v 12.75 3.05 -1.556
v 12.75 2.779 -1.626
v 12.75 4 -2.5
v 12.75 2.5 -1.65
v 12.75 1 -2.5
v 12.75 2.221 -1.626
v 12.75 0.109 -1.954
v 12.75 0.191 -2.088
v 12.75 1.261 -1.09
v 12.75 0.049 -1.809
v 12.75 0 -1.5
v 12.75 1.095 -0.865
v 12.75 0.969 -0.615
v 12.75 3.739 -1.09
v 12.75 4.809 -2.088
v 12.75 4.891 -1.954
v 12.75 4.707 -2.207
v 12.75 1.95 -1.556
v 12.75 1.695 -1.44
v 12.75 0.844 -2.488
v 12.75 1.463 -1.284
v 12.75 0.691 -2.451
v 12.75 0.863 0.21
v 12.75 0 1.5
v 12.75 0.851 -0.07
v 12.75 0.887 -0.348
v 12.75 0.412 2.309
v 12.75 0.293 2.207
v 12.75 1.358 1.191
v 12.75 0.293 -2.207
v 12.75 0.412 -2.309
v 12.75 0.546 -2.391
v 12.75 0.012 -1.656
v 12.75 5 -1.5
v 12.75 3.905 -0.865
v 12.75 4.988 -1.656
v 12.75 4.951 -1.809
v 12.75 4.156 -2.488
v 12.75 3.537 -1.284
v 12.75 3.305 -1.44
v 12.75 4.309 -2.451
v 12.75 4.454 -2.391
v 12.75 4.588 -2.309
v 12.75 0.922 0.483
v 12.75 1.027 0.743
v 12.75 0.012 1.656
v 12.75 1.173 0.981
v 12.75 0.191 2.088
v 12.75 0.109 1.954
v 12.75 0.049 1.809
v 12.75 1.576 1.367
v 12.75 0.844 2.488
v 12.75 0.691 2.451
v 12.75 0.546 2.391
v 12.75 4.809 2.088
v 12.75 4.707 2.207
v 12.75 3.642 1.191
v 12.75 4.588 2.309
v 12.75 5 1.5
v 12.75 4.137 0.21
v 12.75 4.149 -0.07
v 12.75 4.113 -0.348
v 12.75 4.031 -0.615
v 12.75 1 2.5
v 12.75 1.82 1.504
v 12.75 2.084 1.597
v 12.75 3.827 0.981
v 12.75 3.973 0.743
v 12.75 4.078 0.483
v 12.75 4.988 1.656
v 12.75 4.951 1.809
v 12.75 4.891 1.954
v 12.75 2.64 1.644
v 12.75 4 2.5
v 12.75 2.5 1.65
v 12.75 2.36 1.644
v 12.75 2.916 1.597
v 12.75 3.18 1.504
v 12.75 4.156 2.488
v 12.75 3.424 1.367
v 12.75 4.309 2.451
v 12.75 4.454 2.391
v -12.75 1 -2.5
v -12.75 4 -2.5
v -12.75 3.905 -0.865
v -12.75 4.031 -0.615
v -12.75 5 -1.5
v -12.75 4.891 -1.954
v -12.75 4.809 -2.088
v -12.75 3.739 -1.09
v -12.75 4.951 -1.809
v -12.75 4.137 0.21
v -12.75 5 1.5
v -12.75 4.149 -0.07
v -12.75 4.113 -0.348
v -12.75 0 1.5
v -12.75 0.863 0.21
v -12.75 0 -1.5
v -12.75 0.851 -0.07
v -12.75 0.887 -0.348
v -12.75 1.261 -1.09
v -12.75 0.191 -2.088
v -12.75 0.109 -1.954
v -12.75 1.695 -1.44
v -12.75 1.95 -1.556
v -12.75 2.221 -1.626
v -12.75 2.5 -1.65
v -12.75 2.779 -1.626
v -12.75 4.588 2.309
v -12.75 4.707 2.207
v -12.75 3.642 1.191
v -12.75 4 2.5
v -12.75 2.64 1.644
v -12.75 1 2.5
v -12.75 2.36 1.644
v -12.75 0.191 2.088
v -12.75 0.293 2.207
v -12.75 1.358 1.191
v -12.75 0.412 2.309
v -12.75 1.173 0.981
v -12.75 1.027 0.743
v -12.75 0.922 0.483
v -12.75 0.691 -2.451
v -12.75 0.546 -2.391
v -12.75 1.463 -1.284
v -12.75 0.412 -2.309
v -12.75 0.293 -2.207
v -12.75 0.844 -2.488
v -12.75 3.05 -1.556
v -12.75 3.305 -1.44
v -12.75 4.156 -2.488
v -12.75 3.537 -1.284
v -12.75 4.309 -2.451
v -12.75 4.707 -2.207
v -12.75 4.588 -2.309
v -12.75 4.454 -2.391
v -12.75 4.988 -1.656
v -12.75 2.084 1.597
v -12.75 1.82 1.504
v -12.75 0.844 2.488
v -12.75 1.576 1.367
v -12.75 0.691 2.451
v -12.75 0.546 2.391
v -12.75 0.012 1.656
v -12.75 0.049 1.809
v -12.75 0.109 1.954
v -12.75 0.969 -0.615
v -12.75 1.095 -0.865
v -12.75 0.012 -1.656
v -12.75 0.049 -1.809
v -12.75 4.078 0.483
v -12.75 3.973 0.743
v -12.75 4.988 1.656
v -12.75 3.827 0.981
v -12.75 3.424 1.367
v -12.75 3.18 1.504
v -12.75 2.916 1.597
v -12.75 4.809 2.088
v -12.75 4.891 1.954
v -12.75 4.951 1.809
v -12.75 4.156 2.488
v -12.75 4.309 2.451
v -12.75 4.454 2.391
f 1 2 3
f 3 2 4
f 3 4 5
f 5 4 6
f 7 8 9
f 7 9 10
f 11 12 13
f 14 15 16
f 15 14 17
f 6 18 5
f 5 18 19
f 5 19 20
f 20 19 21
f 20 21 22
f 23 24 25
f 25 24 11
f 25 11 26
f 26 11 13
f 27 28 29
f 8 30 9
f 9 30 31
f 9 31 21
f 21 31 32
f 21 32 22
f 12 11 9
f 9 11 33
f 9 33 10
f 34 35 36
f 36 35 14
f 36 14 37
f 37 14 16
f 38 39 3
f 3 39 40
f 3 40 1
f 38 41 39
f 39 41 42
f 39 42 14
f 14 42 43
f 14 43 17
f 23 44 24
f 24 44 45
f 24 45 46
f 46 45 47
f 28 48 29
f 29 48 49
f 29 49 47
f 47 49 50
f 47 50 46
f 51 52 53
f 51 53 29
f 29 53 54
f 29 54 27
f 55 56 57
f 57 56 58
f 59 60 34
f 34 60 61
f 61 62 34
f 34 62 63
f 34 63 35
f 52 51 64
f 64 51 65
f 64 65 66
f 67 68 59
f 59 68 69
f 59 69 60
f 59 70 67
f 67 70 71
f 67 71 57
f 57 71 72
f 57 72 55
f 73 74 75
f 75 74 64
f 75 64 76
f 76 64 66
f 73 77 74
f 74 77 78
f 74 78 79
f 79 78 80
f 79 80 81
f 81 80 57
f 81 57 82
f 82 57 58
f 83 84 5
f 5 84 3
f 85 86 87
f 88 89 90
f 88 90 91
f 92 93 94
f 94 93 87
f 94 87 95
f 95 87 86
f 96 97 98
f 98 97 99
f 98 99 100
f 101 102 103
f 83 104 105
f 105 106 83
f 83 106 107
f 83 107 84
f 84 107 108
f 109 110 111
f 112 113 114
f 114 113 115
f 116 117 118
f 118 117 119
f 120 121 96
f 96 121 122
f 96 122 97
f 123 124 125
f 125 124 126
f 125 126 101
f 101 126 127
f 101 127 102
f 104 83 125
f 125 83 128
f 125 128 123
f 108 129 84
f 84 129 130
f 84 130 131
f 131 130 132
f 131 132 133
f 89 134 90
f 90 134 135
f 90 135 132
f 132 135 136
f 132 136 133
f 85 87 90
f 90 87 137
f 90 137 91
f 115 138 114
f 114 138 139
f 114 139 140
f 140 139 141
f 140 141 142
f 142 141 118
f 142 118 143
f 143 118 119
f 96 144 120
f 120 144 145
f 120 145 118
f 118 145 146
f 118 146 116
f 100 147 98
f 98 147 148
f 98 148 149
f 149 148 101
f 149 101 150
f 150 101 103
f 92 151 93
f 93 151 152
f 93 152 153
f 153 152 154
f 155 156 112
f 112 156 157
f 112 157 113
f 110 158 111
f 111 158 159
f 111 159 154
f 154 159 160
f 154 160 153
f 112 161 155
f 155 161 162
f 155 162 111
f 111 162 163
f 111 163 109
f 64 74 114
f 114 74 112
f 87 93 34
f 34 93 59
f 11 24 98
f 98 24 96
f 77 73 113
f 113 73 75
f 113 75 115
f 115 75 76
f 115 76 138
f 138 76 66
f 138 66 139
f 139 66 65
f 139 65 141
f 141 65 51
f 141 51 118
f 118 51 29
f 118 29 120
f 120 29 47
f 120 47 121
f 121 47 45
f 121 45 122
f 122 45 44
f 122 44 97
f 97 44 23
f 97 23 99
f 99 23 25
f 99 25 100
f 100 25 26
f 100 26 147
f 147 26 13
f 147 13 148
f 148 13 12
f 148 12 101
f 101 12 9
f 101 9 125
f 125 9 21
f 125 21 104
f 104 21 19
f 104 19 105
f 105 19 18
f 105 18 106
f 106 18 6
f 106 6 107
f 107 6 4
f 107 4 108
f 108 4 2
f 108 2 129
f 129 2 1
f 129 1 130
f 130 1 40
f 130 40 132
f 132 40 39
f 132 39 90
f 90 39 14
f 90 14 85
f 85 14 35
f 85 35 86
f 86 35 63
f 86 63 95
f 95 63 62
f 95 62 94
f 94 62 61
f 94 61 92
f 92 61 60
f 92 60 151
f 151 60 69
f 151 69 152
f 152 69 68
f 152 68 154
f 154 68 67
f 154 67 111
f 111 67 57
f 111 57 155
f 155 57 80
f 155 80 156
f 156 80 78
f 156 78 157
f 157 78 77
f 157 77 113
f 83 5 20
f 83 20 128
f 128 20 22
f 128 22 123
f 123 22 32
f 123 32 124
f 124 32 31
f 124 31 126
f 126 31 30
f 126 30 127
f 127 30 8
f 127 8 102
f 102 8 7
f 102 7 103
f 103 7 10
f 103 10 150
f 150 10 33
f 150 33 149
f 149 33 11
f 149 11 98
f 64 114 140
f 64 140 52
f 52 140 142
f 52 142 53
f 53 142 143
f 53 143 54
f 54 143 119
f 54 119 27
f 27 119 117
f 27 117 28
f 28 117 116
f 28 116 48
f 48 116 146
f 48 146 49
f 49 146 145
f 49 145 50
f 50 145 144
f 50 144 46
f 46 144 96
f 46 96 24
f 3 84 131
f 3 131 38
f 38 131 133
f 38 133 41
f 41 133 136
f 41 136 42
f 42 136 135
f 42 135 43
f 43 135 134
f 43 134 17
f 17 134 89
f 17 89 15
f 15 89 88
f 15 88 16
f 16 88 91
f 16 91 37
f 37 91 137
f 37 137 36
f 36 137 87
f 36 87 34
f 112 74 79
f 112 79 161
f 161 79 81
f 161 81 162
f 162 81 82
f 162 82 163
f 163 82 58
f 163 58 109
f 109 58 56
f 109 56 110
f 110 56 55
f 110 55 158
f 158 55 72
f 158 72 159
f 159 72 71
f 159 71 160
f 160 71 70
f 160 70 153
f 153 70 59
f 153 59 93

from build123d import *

# Parameters (mm, degrees)
SKETCH1_W               = 25.5
SKETCH1_H               = 5
BOSS_EXTRUDE1_DEPTH     = 5
SKETCH2_R               = 1.65
CUT_EXTRUDE1_DEPTH      = 1
CUT_EXTRUDE1_DEPTH_BACK = 26.5
FILLET1_R               = 1


with BuildPart() as part:
    # Sketch1 → Boss-Extrude1 (new body)
    with BuildSketch(Plane(origin=(0, 0, 0), x_dir=(1, 0, 0), z_dir=(0, 1, 0))):
        Rectangle(SKETCH1_W, SKETCH1_H)
    extrude(amount=BOSS_EXTRUDE1_DEPTH)

    # Sketch2 → Cut-Extrude1 (cut, two sides)
    with BuildSketch(Plane(origin=(12.75, 0, 0), x_dir=(0, 0, -1), z_dir=(1, 0, 0))) as cut_extrude1_sk:
        with Locations((0, 2.5)):
            Circle(SKETCH2_R)
    extrude(amount=CUT_EXTRUDE1_DEPTH, mode=Mode.SUBTRACT)
    extrude(cut_extrude1_sk.sketch, amount=-CUT_EXTRUDE1_DEPTH_BACK, mode=Mode.SUBTRACT)

    # Fillet1
    fillet1_edges = [part.edges().sort_by_distance(p)[0] for p in [
        (0, 5, 2.5),
        (0, 0, 2.5),
        (0, 0, -2.5),
        (0, 5, -2.5),
    ]]
    fillet(fillet1_edges, radius=FILLET1_R)


solid = part.part
